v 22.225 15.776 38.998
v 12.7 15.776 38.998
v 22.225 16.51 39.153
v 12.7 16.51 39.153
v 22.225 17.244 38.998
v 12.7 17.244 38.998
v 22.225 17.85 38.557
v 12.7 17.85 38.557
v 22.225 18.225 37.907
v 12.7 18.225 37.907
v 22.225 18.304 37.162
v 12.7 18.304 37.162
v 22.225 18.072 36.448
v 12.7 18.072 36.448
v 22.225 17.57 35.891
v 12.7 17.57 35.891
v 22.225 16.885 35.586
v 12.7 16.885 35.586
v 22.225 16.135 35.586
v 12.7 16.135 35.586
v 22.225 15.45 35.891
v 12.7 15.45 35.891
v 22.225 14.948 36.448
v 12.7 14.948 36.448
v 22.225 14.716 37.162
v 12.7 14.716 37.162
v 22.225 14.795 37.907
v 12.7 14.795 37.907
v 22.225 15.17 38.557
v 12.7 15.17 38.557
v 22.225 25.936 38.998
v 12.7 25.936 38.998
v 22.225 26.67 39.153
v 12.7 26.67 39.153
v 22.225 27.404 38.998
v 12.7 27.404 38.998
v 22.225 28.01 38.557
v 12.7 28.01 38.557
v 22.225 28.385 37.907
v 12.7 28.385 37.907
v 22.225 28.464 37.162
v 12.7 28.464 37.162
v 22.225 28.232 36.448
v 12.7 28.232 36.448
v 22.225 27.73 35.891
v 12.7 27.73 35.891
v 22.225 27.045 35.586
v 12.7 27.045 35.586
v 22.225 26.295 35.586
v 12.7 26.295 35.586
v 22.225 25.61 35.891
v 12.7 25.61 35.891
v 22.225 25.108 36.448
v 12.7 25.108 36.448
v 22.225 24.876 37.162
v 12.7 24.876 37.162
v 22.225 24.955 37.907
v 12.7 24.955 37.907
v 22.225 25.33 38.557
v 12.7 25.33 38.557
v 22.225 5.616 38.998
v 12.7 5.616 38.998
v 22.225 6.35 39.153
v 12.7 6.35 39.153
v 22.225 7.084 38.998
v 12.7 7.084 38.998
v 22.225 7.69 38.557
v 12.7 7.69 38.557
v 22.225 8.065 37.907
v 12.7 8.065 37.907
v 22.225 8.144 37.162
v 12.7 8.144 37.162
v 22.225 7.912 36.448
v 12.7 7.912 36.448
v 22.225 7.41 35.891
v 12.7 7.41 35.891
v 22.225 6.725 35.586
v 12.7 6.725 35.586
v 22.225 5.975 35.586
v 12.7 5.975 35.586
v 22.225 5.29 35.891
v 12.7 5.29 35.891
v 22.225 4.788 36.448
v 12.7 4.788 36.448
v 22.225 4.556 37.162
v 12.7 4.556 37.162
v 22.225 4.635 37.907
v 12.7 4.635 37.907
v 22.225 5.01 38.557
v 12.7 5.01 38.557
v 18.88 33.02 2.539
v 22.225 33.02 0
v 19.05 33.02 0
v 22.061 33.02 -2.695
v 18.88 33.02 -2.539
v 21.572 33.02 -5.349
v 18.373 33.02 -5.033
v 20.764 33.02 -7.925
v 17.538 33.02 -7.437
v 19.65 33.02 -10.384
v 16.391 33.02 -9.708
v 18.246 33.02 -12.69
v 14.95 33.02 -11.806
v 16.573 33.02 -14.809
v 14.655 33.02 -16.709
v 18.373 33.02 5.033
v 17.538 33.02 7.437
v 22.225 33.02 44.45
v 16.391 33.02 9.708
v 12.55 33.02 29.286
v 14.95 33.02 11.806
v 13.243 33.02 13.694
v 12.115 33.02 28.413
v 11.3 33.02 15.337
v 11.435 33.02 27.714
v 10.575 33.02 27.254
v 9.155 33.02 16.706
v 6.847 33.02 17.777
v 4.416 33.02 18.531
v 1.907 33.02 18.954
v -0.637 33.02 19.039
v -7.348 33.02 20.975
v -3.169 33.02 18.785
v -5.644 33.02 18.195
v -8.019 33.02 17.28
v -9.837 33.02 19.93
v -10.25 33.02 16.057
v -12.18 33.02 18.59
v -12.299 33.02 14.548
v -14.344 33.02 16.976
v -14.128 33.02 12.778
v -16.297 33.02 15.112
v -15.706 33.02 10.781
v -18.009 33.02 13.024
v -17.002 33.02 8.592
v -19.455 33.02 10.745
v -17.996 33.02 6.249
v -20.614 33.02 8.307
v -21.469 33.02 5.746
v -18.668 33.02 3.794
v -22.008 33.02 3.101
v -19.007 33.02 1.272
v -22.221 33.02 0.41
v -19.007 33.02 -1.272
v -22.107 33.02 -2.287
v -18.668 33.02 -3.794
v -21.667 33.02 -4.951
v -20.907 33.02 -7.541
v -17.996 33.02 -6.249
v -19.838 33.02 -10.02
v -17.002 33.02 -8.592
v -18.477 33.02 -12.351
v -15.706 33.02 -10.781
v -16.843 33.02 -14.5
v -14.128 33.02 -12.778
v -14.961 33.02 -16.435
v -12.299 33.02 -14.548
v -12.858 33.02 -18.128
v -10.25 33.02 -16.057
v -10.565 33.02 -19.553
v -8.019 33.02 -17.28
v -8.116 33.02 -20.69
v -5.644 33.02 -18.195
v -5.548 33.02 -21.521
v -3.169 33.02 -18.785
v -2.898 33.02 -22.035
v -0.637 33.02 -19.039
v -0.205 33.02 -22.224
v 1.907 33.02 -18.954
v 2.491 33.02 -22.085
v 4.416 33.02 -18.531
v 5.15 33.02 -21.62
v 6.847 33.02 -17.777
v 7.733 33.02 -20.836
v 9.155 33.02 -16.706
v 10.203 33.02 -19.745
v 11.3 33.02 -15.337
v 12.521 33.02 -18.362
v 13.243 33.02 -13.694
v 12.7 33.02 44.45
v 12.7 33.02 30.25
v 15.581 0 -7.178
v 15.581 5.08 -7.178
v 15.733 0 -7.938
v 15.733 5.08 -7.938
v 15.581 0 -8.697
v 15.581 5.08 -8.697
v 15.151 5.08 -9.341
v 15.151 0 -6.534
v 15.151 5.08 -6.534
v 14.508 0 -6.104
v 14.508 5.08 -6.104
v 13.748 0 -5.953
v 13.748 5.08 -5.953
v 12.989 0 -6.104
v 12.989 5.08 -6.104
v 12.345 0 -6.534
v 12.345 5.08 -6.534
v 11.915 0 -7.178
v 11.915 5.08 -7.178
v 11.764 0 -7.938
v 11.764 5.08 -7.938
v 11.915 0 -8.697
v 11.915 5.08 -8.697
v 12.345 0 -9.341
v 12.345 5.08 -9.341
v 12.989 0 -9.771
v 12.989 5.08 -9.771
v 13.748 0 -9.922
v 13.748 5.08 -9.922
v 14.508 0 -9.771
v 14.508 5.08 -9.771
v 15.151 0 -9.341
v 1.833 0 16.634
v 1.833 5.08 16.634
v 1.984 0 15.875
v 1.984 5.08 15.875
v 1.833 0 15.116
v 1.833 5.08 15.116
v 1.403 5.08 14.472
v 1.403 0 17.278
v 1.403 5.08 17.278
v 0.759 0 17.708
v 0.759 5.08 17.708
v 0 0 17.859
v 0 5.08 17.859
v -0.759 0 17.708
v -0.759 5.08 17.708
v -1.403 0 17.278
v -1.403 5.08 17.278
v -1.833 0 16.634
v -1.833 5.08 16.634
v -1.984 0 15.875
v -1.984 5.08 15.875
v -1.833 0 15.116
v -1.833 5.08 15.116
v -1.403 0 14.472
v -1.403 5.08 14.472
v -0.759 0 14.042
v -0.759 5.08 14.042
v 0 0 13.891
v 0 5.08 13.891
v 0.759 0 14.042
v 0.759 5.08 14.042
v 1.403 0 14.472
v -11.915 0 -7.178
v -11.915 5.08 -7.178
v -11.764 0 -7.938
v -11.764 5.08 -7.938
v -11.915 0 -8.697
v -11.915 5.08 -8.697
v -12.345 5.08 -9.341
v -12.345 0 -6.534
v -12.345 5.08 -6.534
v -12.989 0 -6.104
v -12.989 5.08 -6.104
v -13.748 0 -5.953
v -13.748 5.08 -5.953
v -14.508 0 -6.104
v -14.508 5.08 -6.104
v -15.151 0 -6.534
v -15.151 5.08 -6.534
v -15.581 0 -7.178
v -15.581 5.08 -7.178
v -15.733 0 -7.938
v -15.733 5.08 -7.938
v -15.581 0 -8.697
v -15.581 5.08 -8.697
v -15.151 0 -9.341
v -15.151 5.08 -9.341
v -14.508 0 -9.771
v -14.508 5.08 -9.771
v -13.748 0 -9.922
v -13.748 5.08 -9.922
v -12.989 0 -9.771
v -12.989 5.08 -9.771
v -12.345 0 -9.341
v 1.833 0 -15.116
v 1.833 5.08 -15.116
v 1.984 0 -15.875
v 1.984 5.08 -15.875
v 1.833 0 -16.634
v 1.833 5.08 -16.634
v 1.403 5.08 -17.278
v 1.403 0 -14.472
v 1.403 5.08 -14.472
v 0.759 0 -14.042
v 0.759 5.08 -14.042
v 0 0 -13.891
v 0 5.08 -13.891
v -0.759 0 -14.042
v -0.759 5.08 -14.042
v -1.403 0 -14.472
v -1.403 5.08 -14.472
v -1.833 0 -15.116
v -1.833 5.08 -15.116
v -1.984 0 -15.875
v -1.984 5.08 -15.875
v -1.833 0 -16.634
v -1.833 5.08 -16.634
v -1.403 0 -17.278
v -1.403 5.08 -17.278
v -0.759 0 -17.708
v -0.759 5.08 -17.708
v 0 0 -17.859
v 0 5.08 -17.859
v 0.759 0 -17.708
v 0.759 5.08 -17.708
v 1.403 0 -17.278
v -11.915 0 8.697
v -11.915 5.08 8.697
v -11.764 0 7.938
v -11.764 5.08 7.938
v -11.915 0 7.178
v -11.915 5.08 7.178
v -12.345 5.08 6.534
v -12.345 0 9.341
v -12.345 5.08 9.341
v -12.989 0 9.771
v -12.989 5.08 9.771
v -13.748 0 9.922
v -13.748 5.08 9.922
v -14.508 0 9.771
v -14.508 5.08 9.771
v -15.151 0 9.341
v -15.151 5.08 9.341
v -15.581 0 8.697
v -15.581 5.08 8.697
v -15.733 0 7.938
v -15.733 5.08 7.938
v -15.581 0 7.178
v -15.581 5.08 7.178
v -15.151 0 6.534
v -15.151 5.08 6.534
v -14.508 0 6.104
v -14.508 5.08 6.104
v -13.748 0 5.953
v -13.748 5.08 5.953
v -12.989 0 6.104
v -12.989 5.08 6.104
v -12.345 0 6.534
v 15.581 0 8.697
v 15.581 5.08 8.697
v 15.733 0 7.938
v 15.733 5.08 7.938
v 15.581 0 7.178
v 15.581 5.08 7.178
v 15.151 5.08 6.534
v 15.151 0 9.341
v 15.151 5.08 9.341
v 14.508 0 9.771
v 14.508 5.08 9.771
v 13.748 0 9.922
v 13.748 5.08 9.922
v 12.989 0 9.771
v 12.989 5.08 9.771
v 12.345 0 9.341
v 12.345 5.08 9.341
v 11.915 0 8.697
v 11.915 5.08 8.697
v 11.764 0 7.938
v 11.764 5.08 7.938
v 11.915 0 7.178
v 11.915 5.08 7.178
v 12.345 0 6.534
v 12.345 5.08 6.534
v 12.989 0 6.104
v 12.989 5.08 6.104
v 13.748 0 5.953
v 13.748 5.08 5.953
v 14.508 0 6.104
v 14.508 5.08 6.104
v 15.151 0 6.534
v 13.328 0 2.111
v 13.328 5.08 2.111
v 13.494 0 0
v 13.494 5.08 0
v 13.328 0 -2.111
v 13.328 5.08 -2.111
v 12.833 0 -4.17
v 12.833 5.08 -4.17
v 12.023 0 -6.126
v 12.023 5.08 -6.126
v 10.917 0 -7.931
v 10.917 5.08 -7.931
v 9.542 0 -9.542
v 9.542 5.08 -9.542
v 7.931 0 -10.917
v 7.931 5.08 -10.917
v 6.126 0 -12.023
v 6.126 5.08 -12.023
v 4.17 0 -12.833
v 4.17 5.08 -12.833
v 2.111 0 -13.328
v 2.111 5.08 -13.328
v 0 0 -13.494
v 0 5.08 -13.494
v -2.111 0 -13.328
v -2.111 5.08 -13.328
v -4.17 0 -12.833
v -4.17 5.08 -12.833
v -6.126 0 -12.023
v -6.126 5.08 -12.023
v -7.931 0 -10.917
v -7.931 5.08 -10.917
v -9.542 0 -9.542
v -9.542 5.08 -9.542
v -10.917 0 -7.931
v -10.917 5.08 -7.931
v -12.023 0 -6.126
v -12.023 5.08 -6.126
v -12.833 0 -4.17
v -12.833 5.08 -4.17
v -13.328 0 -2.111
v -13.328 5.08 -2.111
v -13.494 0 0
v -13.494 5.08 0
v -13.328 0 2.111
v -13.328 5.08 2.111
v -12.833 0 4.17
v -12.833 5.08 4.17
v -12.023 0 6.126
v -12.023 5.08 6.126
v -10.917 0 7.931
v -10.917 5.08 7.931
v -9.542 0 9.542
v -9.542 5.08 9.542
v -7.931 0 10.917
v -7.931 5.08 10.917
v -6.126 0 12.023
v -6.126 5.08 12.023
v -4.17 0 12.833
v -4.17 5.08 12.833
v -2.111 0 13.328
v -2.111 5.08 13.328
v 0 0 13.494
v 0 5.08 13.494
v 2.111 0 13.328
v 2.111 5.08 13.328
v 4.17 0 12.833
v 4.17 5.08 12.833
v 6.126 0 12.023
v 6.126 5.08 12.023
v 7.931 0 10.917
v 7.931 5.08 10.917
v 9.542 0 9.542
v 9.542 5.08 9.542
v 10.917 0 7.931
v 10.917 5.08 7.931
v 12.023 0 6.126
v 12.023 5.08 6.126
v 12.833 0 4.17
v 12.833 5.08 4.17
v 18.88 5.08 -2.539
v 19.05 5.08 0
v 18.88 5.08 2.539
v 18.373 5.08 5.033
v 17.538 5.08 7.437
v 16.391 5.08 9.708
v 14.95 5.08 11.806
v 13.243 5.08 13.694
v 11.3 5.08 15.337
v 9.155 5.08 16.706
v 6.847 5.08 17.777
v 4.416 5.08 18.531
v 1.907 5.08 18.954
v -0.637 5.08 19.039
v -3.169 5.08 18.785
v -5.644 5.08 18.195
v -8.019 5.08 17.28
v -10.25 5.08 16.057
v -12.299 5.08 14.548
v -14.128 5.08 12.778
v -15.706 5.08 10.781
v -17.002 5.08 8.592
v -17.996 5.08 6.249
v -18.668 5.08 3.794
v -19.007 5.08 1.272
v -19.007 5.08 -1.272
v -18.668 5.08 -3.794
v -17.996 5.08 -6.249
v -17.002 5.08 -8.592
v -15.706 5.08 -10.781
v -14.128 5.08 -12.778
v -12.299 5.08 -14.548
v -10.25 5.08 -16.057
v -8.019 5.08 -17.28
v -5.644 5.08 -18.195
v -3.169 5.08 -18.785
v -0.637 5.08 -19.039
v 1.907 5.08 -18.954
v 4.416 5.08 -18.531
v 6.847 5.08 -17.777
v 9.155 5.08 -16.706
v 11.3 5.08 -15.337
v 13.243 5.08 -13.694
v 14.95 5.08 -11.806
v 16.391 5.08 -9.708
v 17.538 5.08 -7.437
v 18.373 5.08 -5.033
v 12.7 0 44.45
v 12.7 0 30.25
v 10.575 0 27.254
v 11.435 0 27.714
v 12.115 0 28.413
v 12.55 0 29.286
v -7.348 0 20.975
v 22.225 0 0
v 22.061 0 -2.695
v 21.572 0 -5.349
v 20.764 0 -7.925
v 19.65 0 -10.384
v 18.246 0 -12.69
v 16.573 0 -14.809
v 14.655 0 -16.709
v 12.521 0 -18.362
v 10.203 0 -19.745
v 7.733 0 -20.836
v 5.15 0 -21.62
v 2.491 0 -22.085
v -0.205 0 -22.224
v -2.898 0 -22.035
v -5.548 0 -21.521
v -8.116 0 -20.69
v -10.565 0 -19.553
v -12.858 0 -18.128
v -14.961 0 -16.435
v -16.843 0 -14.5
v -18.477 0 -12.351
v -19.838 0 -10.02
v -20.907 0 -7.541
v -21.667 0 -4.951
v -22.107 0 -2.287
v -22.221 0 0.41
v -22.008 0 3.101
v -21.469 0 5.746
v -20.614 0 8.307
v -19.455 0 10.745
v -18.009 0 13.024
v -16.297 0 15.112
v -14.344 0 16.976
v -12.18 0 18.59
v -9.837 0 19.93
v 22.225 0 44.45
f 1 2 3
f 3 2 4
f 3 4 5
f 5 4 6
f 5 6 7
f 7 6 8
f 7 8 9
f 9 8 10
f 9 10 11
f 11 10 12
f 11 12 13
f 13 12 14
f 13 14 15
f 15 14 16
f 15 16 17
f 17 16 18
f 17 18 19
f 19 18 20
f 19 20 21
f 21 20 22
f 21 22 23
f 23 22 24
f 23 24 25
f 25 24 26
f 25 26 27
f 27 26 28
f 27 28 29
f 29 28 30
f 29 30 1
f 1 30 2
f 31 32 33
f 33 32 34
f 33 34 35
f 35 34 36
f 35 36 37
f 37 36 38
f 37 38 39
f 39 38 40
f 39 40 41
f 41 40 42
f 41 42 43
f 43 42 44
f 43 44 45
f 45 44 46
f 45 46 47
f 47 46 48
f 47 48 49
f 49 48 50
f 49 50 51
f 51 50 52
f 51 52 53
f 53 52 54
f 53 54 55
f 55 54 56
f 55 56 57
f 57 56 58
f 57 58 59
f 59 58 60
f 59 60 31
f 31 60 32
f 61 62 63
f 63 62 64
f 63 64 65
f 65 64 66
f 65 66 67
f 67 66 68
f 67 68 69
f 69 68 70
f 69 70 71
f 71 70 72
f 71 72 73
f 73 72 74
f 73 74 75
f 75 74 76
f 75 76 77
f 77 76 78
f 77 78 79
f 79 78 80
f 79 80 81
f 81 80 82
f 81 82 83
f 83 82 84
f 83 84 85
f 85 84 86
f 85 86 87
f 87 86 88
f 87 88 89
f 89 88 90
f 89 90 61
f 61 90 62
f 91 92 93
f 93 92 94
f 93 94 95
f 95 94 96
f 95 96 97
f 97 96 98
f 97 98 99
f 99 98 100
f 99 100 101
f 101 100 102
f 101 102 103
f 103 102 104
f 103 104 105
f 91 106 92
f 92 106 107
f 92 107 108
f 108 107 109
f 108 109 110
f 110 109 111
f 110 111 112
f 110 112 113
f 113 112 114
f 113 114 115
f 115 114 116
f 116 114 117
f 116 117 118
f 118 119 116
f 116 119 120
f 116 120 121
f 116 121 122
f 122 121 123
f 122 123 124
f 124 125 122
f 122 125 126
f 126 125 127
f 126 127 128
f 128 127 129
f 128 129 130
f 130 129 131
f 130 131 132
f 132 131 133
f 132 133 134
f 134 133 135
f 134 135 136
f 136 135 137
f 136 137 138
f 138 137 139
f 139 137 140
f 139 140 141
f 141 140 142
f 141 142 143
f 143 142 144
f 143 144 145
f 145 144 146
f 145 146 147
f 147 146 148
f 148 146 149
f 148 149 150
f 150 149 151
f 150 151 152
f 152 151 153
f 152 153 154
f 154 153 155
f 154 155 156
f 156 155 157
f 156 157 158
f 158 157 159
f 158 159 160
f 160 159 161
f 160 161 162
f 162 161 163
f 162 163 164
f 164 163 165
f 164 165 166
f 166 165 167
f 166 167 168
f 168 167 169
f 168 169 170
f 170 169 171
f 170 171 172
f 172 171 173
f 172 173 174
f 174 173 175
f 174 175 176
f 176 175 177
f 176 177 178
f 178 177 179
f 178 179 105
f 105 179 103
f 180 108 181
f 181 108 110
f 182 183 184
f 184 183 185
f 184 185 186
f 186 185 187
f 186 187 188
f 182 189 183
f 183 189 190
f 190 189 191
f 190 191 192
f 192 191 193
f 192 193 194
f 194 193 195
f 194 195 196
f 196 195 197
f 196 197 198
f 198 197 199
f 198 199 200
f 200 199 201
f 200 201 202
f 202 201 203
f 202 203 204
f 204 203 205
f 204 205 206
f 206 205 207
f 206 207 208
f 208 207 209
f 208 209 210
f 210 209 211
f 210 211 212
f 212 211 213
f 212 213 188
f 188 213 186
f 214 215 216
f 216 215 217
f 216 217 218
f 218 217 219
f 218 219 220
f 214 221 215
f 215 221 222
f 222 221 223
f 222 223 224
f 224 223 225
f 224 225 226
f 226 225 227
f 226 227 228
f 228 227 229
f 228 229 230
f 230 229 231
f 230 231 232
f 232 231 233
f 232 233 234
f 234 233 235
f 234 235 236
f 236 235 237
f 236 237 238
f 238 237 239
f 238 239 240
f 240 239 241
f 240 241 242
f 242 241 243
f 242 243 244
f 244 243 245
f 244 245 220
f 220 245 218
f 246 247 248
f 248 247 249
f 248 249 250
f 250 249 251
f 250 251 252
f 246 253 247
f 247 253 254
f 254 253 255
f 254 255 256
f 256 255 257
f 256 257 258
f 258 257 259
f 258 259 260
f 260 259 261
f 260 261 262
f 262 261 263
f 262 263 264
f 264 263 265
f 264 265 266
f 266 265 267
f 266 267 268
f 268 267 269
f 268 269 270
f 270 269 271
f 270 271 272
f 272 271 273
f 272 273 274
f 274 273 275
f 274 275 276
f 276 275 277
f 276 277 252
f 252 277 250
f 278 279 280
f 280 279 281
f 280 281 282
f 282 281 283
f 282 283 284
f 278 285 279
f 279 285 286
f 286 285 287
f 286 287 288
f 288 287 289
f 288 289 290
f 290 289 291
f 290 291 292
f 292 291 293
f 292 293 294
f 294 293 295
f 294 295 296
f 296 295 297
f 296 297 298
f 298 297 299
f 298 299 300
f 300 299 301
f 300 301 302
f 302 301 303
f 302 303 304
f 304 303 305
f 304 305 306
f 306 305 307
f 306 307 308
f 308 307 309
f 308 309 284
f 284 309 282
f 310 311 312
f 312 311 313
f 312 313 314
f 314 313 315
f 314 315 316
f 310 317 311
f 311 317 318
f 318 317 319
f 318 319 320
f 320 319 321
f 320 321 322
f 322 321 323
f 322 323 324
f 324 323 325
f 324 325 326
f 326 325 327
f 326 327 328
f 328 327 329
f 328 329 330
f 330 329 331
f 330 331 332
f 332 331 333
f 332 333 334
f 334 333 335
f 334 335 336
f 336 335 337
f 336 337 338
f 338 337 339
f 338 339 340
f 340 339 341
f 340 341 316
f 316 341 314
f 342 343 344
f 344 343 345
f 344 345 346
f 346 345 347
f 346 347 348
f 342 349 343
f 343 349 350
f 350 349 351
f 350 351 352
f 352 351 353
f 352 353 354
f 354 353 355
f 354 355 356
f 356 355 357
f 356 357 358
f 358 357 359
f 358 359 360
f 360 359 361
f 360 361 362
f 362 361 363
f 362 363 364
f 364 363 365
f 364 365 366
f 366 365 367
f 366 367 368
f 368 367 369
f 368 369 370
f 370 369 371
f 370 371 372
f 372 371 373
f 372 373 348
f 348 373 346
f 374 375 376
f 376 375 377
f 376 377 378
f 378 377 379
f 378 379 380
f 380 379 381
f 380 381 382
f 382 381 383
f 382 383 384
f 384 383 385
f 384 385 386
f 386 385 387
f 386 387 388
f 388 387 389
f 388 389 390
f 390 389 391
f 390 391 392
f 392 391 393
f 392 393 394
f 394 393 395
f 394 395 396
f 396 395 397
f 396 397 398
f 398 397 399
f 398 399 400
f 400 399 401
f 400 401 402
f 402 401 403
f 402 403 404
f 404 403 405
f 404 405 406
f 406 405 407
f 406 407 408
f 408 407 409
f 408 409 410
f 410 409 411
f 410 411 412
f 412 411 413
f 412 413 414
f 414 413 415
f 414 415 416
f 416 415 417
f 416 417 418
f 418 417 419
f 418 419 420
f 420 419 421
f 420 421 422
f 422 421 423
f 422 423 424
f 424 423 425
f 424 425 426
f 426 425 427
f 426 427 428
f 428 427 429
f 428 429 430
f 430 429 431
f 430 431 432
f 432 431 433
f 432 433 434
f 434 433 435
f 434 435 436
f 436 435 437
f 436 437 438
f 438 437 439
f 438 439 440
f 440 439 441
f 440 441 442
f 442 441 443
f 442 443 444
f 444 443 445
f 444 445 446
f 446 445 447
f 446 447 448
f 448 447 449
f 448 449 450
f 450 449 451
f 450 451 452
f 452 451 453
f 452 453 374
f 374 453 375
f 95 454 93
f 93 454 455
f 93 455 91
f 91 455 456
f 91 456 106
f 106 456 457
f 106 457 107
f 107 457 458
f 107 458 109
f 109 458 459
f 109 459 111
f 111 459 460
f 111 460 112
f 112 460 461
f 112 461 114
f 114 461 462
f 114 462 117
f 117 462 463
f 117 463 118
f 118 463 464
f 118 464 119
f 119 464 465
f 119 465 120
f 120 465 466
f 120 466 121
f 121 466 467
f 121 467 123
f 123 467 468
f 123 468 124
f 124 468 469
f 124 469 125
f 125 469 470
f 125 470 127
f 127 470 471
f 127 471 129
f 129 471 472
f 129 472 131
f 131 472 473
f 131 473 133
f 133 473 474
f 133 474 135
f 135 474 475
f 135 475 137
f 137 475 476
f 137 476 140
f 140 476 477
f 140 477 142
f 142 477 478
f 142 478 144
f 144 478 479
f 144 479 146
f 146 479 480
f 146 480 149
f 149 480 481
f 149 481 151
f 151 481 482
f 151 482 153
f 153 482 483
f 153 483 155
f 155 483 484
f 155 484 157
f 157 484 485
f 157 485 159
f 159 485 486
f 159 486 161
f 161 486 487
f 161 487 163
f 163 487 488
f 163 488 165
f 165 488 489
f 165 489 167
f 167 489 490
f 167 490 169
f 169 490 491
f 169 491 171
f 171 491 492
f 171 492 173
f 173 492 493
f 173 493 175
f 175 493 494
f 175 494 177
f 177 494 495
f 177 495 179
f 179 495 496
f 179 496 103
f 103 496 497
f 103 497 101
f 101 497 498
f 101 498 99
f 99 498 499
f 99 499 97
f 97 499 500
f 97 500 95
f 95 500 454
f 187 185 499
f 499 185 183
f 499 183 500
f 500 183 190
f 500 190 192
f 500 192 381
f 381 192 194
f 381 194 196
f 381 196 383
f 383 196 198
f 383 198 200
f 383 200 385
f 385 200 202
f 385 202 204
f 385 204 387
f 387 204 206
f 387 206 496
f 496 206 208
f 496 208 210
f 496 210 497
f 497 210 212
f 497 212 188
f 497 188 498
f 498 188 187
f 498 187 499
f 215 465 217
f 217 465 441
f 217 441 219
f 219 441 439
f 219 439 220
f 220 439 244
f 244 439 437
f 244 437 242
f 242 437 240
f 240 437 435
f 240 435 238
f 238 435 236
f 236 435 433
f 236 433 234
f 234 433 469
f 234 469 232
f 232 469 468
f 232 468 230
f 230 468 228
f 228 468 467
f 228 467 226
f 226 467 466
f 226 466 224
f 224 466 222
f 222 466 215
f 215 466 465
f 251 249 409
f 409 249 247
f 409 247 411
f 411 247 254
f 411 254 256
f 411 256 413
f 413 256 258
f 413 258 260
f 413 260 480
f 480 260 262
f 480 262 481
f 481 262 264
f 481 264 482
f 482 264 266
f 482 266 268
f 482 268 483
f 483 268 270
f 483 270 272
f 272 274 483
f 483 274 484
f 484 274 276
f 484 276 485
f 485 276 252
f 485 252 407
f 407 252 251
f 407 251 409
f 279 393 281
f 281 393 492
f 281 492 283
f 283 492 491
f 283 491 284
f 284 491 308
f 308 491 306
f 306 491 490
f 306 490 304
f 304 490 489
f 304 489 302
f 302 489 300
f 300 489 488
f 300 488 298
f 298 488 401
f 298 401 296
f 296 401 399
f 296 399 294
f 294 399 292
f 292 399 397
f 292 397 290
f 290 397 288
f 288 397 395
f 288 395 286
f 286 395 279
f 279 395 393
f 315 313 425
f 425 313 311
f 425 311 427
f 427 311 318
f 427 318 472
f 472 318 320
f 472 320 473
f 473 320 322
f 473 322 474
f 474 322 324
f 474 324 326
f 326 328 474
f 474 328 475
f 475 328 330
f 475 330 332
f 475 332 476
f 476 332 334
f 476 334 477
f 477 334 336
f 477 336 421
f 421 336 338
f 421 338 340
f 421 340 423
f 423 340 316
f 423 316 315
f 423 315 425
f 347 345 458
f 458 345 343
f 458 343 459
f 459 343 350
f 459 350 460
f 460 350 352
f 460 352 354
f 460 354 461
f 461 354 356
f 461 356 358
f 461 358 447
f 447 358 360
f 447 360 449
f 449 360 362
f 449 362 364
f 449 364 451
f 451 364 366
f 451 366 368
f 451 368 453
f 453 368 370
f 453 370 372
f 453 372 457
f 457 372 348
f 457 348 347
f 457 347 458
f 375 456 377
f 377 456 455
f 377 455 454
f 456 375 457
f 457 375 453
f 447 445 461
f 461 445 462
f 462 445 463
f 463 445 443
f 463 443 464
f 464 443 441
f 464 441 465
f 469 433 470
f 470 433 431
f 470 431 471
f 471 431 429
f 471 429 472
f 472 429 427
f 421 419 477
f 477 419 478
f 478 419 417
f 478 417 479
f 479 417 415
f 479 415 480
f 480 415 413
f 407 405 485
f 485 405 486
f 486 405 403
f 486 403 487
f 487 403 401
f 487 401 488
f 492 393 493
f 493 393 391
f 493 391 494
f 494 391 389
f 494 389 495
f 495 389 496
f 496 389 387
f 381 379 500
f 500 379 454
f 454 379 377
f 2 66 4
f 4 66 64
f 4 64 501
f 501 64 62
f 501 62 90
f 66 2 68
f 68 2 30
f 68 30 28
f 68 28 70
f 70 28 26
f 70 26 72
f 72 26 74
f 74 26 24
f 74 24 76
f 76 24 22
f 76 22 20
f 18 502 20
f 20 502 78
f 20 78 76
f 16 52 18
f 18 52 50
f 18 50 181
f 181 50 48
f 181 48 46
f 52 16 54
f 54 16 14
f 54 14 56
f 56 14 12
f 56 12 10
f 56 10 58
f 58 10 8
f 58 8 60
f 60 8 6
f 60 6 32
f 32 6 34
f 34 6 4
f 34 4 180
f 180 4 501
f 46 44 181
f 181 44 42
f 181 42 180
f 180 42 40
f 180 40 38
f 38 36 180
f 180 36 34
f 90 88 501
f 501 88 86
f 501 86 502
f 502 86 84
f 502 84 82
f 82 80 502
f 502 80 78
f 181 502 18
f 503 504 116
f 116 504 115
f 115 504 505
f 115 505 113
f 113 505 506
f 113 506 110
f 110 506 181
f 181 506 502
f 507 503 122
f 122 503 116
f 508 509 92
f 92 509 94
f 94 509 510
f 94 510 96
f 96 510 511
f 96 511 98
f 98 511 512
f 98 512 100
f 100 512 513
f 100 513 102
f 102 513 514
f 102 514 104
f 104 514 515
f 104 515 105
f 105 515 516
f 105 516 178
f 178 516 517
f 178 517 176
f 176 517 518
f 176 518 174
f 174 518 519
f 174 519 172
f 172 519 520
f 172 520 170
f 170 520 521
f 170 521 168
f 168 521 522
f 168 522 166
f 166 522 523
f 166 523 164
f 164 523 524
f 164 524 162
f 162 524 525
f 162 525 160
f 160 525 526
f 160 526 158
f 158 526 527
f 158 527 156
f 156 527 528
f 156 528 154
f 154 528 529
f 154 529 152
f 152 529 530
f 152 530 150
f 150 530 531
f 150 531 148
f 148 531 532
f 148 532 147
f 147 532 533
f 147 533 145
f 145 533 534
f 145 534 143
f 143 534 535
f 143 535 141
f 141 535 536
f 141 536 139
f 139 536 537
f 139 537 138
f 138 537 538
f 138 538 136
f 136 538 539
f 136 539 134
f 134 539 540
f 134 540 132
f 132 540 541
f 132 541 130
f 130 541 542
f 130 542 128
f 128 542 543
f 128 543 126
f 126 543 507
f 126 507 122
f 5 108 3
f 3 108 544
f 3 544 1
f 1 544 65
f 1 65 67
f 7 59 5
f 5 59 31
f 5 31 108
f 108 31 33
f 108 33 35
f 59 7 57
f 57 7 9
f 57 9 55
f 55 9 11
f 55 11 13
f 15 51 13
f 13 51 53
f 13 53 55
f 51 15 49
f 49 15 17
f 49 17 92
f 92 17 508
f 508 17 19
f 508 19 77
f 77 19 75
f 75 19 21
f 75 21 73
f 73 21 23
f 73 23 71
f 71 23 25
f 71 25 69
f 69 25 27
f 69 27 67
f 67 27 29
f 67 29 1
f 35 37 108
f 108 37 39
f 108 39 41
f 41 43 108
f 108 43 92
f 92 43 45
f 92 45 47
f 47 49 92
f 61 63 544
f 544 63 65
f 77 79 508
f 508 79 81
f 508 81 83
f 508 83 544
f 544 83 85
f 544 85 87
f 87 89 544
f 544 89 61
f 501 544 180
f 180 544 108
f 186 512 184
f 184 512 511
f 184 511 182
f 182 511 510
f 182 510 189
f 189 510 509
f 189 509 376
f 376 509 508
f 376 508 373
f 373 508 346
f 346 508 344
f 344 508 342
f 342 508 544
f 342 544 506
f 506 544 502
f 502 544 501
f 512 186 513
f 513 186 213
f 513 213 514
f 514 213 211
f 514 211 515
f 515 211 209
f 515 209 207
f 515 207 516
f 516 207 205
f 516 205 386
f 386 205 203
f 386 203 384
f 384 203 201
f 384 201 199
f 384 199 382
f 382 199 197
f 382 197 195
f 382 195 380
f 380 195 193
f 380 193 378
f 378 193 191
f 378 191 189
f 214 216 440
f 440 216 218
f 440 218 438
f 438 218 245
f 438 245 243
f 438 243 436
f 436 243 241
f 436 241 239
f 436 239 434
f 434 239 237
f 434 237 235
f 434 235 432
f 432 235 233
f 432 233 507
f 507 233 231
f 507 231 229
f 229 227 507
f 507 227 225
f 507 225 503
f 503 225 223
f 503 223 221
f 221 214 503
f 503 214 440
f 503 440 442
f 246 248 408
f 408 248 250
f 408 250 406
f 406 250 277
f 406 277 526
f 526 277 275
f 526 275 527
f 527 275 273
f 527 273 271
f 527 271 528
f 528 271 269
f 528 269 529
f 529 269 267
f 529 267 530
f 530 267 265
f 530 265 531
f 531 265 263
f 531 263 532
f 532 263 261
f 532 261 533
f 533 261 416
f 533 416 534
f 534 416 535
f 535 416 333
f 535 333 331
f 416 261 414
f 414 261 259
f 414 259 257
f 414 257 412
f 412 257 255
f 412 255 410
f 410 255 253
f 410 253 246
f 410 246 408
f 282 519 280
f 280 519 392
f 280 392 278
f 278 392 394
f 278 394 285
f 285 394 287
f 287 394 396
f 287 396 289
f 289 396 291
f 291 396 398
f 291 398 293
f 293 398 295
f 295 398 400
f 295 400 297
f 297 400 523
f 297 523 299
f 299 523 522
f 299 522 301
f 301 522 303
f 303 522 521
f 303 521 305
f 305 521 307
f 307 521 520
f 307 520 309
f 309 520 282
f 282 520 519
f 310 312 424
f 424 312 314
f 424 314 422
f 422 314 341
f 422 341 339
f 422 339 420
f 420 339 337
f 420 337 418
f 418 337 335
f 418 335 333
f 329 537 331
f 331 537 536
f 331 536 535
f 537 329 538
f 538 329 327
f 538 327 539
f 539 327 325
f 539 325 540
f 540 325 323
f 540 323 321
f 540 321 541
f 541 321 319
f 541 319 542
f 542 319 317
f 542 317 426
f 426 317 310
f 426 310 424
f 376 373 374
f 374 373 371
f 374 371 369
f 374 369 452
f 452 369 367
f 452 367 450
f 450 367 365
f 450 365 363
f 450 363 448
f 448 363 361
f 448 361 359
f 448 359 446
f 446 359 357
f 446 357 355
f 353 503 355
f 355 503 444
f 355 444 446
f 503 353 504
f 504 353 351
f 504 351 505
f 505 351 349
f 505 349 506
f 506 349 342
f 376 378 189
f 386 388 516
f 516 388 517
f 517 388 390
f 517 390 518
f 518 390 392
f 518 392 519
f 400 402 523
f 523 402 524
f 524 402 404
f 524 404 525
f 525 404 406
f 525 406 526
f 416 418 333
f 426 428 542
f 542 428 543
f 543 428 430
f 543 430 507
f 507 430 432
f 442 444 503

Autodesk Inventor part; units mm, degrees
ref_plane "YZ Plane" through (0, 0, 0) normal (1, 0, 0) x (0, 1, 0)
ref_plane "XZ Plane" through (0, 0, 0) normal (0, 1, 0) x (-1, 0, 0)
ref_plane "XY Plane" through (0, 0, 0) normal (0, 0, 1) x (1, 0, 0)
sketch "Sketch1" plane through (0, 0, 0) normal (0, 1, 0) x (-1, 0, 0)
  arc A0 (-22.225, 0) -> (7.3478, 20.9752) centre (0, 0) ccw
  line L0 (-22.225, 0) -> (-12.7, 0)
  line L1 (-12.7, 44.45) -> (-22.225, 44.45)
  line L2 (-22.225, 44.45) -> (-22.225, 0)
  line L3 (39.7917, 0) -> (-48.1139, 0) construction
  line L4 (-10.5747, 27.2537) -> (7.3478, 20.9752)
  line L5 (-12.7, 30.2501) -> (-12.7, 44.45)
  arc A1 (-12.7, 30.2501) -> (-10.5747, 27.2537) centre (-9.525, 30.2501) ccw
  dimension "d0" = 44.45
  dimension "d3" = 9.525
  dimension "d4" = 44.45
  dimension "d5" = 3.175
extrude "Extrusion1" add sketch "Sketch1" along normal blind 25.4
sketch "Sketch2" plane through (0, 25.4, 0) normal (0, 1, 0) x (1, 0, 0)
  circle A0 centre (0, 0) radius 19.05
  dimension "d8" = 38.1
extrude "Extrusion2" cut sketch "Sketch2" against normal blind 20.32
sketch "Sketch3" plane through (0, 5.08, 0) normal (0, 1, 0) x (1, 0, 0)
  circle A0 centre (0, 15.875) radius 1.9844
  circle A1 centre (0, 0) radius 19.05 projected
  circle A2 centre (-13.7482, 7.9375) radius 1.9844
  circle A3 centre (-13.7482, -7.9375) radius 1.9844
  circle A4 centre (0, -15.875) radius 1.9844
  circle A5 centre (13.7482, -7.9375) radius 1.9844
  circle A6 centre (13.7482, 7.9375) radius 1.9844
  circle A7 centre (0, 0) radius 13.4938
  point P0 (0, 0)
  point P1 (0, 19.05)
  dimension "d11" = 3.9688
  dimension "d12" = 3.175
  dimension "d15" = 360
  dimension "d17" = 5.5563
extrude "Extrusion3" cut sketch "Sketch3" against normal up to next contours A0 | A2 | A3 | A4 | A5 | A6 | A7
sketch "Sketch5" plane through (0, 25.4, 0) normal (0, 1, 0) x (1, 0, 0)
  circle A0 centre (0, 0) radius 19.05 projected
  line L0 (12.7, -44.45) -> (22.225, -44.45) projected
  line L1 (22.225, -44.45) -> (22.225, 0) projected
  arc A1 (22.225, 0) -> (-7.3478, -20.9752) centre (0, 0) ccw projected
  line L2 (-7.3478, -20.9752) -> (10.5747, -27.2537) projected
  arc A2 (12.7, -30.2501) -> (10.5747, -27.2537) centre (9.525, -30.2501) ccw projected
  line L3 (12.7, -30.2501) -> (12.7, -44.45) projected
extrude "Extrusion5" add sketch "Sketch5" along normal blind 7.62
sketch "Sketch4" plane through (12.7, 0, 30.2501) normal (-1, 0, 0) x (0, 0, 1)
  circle A0 centre (7.0999, 26.67) radius 1.8034
  line L0 (0, 0) -> (0, 25.4) construction
  line L1 (0, 24.4432) -> (14.1999, 24.4432) construction
  line L2 (14.1999, 24.4432) -> (7.0999, 24.4432) construction
  line L3 (7.0999, 24.4432) -> (7.0999, 0) construction
  line L4 (14.1999, 0) -> (-30.2501, 0) construction
  circle A1 centre (7.0999, 16.51) radius 1.8034
  circle A2 centre (7.0999, 6.35) radius 1.8034
  line L5 (14.1999, 0) -> (14.1999, 33.02) projected
  line L6 (14.1999, 16.51) -> (0, 16.51) construction
  dimension "d20" = 3.6068
  dimension "d21" = 3.6068
  dimension "d22" = 3.6068
  dimension "d23" = 10.16
  dimension "d24" = 10.16
extrude "Extrusion4" cut sketch "Sketch4" against normal up to next
properties part number "MotorMountA"
